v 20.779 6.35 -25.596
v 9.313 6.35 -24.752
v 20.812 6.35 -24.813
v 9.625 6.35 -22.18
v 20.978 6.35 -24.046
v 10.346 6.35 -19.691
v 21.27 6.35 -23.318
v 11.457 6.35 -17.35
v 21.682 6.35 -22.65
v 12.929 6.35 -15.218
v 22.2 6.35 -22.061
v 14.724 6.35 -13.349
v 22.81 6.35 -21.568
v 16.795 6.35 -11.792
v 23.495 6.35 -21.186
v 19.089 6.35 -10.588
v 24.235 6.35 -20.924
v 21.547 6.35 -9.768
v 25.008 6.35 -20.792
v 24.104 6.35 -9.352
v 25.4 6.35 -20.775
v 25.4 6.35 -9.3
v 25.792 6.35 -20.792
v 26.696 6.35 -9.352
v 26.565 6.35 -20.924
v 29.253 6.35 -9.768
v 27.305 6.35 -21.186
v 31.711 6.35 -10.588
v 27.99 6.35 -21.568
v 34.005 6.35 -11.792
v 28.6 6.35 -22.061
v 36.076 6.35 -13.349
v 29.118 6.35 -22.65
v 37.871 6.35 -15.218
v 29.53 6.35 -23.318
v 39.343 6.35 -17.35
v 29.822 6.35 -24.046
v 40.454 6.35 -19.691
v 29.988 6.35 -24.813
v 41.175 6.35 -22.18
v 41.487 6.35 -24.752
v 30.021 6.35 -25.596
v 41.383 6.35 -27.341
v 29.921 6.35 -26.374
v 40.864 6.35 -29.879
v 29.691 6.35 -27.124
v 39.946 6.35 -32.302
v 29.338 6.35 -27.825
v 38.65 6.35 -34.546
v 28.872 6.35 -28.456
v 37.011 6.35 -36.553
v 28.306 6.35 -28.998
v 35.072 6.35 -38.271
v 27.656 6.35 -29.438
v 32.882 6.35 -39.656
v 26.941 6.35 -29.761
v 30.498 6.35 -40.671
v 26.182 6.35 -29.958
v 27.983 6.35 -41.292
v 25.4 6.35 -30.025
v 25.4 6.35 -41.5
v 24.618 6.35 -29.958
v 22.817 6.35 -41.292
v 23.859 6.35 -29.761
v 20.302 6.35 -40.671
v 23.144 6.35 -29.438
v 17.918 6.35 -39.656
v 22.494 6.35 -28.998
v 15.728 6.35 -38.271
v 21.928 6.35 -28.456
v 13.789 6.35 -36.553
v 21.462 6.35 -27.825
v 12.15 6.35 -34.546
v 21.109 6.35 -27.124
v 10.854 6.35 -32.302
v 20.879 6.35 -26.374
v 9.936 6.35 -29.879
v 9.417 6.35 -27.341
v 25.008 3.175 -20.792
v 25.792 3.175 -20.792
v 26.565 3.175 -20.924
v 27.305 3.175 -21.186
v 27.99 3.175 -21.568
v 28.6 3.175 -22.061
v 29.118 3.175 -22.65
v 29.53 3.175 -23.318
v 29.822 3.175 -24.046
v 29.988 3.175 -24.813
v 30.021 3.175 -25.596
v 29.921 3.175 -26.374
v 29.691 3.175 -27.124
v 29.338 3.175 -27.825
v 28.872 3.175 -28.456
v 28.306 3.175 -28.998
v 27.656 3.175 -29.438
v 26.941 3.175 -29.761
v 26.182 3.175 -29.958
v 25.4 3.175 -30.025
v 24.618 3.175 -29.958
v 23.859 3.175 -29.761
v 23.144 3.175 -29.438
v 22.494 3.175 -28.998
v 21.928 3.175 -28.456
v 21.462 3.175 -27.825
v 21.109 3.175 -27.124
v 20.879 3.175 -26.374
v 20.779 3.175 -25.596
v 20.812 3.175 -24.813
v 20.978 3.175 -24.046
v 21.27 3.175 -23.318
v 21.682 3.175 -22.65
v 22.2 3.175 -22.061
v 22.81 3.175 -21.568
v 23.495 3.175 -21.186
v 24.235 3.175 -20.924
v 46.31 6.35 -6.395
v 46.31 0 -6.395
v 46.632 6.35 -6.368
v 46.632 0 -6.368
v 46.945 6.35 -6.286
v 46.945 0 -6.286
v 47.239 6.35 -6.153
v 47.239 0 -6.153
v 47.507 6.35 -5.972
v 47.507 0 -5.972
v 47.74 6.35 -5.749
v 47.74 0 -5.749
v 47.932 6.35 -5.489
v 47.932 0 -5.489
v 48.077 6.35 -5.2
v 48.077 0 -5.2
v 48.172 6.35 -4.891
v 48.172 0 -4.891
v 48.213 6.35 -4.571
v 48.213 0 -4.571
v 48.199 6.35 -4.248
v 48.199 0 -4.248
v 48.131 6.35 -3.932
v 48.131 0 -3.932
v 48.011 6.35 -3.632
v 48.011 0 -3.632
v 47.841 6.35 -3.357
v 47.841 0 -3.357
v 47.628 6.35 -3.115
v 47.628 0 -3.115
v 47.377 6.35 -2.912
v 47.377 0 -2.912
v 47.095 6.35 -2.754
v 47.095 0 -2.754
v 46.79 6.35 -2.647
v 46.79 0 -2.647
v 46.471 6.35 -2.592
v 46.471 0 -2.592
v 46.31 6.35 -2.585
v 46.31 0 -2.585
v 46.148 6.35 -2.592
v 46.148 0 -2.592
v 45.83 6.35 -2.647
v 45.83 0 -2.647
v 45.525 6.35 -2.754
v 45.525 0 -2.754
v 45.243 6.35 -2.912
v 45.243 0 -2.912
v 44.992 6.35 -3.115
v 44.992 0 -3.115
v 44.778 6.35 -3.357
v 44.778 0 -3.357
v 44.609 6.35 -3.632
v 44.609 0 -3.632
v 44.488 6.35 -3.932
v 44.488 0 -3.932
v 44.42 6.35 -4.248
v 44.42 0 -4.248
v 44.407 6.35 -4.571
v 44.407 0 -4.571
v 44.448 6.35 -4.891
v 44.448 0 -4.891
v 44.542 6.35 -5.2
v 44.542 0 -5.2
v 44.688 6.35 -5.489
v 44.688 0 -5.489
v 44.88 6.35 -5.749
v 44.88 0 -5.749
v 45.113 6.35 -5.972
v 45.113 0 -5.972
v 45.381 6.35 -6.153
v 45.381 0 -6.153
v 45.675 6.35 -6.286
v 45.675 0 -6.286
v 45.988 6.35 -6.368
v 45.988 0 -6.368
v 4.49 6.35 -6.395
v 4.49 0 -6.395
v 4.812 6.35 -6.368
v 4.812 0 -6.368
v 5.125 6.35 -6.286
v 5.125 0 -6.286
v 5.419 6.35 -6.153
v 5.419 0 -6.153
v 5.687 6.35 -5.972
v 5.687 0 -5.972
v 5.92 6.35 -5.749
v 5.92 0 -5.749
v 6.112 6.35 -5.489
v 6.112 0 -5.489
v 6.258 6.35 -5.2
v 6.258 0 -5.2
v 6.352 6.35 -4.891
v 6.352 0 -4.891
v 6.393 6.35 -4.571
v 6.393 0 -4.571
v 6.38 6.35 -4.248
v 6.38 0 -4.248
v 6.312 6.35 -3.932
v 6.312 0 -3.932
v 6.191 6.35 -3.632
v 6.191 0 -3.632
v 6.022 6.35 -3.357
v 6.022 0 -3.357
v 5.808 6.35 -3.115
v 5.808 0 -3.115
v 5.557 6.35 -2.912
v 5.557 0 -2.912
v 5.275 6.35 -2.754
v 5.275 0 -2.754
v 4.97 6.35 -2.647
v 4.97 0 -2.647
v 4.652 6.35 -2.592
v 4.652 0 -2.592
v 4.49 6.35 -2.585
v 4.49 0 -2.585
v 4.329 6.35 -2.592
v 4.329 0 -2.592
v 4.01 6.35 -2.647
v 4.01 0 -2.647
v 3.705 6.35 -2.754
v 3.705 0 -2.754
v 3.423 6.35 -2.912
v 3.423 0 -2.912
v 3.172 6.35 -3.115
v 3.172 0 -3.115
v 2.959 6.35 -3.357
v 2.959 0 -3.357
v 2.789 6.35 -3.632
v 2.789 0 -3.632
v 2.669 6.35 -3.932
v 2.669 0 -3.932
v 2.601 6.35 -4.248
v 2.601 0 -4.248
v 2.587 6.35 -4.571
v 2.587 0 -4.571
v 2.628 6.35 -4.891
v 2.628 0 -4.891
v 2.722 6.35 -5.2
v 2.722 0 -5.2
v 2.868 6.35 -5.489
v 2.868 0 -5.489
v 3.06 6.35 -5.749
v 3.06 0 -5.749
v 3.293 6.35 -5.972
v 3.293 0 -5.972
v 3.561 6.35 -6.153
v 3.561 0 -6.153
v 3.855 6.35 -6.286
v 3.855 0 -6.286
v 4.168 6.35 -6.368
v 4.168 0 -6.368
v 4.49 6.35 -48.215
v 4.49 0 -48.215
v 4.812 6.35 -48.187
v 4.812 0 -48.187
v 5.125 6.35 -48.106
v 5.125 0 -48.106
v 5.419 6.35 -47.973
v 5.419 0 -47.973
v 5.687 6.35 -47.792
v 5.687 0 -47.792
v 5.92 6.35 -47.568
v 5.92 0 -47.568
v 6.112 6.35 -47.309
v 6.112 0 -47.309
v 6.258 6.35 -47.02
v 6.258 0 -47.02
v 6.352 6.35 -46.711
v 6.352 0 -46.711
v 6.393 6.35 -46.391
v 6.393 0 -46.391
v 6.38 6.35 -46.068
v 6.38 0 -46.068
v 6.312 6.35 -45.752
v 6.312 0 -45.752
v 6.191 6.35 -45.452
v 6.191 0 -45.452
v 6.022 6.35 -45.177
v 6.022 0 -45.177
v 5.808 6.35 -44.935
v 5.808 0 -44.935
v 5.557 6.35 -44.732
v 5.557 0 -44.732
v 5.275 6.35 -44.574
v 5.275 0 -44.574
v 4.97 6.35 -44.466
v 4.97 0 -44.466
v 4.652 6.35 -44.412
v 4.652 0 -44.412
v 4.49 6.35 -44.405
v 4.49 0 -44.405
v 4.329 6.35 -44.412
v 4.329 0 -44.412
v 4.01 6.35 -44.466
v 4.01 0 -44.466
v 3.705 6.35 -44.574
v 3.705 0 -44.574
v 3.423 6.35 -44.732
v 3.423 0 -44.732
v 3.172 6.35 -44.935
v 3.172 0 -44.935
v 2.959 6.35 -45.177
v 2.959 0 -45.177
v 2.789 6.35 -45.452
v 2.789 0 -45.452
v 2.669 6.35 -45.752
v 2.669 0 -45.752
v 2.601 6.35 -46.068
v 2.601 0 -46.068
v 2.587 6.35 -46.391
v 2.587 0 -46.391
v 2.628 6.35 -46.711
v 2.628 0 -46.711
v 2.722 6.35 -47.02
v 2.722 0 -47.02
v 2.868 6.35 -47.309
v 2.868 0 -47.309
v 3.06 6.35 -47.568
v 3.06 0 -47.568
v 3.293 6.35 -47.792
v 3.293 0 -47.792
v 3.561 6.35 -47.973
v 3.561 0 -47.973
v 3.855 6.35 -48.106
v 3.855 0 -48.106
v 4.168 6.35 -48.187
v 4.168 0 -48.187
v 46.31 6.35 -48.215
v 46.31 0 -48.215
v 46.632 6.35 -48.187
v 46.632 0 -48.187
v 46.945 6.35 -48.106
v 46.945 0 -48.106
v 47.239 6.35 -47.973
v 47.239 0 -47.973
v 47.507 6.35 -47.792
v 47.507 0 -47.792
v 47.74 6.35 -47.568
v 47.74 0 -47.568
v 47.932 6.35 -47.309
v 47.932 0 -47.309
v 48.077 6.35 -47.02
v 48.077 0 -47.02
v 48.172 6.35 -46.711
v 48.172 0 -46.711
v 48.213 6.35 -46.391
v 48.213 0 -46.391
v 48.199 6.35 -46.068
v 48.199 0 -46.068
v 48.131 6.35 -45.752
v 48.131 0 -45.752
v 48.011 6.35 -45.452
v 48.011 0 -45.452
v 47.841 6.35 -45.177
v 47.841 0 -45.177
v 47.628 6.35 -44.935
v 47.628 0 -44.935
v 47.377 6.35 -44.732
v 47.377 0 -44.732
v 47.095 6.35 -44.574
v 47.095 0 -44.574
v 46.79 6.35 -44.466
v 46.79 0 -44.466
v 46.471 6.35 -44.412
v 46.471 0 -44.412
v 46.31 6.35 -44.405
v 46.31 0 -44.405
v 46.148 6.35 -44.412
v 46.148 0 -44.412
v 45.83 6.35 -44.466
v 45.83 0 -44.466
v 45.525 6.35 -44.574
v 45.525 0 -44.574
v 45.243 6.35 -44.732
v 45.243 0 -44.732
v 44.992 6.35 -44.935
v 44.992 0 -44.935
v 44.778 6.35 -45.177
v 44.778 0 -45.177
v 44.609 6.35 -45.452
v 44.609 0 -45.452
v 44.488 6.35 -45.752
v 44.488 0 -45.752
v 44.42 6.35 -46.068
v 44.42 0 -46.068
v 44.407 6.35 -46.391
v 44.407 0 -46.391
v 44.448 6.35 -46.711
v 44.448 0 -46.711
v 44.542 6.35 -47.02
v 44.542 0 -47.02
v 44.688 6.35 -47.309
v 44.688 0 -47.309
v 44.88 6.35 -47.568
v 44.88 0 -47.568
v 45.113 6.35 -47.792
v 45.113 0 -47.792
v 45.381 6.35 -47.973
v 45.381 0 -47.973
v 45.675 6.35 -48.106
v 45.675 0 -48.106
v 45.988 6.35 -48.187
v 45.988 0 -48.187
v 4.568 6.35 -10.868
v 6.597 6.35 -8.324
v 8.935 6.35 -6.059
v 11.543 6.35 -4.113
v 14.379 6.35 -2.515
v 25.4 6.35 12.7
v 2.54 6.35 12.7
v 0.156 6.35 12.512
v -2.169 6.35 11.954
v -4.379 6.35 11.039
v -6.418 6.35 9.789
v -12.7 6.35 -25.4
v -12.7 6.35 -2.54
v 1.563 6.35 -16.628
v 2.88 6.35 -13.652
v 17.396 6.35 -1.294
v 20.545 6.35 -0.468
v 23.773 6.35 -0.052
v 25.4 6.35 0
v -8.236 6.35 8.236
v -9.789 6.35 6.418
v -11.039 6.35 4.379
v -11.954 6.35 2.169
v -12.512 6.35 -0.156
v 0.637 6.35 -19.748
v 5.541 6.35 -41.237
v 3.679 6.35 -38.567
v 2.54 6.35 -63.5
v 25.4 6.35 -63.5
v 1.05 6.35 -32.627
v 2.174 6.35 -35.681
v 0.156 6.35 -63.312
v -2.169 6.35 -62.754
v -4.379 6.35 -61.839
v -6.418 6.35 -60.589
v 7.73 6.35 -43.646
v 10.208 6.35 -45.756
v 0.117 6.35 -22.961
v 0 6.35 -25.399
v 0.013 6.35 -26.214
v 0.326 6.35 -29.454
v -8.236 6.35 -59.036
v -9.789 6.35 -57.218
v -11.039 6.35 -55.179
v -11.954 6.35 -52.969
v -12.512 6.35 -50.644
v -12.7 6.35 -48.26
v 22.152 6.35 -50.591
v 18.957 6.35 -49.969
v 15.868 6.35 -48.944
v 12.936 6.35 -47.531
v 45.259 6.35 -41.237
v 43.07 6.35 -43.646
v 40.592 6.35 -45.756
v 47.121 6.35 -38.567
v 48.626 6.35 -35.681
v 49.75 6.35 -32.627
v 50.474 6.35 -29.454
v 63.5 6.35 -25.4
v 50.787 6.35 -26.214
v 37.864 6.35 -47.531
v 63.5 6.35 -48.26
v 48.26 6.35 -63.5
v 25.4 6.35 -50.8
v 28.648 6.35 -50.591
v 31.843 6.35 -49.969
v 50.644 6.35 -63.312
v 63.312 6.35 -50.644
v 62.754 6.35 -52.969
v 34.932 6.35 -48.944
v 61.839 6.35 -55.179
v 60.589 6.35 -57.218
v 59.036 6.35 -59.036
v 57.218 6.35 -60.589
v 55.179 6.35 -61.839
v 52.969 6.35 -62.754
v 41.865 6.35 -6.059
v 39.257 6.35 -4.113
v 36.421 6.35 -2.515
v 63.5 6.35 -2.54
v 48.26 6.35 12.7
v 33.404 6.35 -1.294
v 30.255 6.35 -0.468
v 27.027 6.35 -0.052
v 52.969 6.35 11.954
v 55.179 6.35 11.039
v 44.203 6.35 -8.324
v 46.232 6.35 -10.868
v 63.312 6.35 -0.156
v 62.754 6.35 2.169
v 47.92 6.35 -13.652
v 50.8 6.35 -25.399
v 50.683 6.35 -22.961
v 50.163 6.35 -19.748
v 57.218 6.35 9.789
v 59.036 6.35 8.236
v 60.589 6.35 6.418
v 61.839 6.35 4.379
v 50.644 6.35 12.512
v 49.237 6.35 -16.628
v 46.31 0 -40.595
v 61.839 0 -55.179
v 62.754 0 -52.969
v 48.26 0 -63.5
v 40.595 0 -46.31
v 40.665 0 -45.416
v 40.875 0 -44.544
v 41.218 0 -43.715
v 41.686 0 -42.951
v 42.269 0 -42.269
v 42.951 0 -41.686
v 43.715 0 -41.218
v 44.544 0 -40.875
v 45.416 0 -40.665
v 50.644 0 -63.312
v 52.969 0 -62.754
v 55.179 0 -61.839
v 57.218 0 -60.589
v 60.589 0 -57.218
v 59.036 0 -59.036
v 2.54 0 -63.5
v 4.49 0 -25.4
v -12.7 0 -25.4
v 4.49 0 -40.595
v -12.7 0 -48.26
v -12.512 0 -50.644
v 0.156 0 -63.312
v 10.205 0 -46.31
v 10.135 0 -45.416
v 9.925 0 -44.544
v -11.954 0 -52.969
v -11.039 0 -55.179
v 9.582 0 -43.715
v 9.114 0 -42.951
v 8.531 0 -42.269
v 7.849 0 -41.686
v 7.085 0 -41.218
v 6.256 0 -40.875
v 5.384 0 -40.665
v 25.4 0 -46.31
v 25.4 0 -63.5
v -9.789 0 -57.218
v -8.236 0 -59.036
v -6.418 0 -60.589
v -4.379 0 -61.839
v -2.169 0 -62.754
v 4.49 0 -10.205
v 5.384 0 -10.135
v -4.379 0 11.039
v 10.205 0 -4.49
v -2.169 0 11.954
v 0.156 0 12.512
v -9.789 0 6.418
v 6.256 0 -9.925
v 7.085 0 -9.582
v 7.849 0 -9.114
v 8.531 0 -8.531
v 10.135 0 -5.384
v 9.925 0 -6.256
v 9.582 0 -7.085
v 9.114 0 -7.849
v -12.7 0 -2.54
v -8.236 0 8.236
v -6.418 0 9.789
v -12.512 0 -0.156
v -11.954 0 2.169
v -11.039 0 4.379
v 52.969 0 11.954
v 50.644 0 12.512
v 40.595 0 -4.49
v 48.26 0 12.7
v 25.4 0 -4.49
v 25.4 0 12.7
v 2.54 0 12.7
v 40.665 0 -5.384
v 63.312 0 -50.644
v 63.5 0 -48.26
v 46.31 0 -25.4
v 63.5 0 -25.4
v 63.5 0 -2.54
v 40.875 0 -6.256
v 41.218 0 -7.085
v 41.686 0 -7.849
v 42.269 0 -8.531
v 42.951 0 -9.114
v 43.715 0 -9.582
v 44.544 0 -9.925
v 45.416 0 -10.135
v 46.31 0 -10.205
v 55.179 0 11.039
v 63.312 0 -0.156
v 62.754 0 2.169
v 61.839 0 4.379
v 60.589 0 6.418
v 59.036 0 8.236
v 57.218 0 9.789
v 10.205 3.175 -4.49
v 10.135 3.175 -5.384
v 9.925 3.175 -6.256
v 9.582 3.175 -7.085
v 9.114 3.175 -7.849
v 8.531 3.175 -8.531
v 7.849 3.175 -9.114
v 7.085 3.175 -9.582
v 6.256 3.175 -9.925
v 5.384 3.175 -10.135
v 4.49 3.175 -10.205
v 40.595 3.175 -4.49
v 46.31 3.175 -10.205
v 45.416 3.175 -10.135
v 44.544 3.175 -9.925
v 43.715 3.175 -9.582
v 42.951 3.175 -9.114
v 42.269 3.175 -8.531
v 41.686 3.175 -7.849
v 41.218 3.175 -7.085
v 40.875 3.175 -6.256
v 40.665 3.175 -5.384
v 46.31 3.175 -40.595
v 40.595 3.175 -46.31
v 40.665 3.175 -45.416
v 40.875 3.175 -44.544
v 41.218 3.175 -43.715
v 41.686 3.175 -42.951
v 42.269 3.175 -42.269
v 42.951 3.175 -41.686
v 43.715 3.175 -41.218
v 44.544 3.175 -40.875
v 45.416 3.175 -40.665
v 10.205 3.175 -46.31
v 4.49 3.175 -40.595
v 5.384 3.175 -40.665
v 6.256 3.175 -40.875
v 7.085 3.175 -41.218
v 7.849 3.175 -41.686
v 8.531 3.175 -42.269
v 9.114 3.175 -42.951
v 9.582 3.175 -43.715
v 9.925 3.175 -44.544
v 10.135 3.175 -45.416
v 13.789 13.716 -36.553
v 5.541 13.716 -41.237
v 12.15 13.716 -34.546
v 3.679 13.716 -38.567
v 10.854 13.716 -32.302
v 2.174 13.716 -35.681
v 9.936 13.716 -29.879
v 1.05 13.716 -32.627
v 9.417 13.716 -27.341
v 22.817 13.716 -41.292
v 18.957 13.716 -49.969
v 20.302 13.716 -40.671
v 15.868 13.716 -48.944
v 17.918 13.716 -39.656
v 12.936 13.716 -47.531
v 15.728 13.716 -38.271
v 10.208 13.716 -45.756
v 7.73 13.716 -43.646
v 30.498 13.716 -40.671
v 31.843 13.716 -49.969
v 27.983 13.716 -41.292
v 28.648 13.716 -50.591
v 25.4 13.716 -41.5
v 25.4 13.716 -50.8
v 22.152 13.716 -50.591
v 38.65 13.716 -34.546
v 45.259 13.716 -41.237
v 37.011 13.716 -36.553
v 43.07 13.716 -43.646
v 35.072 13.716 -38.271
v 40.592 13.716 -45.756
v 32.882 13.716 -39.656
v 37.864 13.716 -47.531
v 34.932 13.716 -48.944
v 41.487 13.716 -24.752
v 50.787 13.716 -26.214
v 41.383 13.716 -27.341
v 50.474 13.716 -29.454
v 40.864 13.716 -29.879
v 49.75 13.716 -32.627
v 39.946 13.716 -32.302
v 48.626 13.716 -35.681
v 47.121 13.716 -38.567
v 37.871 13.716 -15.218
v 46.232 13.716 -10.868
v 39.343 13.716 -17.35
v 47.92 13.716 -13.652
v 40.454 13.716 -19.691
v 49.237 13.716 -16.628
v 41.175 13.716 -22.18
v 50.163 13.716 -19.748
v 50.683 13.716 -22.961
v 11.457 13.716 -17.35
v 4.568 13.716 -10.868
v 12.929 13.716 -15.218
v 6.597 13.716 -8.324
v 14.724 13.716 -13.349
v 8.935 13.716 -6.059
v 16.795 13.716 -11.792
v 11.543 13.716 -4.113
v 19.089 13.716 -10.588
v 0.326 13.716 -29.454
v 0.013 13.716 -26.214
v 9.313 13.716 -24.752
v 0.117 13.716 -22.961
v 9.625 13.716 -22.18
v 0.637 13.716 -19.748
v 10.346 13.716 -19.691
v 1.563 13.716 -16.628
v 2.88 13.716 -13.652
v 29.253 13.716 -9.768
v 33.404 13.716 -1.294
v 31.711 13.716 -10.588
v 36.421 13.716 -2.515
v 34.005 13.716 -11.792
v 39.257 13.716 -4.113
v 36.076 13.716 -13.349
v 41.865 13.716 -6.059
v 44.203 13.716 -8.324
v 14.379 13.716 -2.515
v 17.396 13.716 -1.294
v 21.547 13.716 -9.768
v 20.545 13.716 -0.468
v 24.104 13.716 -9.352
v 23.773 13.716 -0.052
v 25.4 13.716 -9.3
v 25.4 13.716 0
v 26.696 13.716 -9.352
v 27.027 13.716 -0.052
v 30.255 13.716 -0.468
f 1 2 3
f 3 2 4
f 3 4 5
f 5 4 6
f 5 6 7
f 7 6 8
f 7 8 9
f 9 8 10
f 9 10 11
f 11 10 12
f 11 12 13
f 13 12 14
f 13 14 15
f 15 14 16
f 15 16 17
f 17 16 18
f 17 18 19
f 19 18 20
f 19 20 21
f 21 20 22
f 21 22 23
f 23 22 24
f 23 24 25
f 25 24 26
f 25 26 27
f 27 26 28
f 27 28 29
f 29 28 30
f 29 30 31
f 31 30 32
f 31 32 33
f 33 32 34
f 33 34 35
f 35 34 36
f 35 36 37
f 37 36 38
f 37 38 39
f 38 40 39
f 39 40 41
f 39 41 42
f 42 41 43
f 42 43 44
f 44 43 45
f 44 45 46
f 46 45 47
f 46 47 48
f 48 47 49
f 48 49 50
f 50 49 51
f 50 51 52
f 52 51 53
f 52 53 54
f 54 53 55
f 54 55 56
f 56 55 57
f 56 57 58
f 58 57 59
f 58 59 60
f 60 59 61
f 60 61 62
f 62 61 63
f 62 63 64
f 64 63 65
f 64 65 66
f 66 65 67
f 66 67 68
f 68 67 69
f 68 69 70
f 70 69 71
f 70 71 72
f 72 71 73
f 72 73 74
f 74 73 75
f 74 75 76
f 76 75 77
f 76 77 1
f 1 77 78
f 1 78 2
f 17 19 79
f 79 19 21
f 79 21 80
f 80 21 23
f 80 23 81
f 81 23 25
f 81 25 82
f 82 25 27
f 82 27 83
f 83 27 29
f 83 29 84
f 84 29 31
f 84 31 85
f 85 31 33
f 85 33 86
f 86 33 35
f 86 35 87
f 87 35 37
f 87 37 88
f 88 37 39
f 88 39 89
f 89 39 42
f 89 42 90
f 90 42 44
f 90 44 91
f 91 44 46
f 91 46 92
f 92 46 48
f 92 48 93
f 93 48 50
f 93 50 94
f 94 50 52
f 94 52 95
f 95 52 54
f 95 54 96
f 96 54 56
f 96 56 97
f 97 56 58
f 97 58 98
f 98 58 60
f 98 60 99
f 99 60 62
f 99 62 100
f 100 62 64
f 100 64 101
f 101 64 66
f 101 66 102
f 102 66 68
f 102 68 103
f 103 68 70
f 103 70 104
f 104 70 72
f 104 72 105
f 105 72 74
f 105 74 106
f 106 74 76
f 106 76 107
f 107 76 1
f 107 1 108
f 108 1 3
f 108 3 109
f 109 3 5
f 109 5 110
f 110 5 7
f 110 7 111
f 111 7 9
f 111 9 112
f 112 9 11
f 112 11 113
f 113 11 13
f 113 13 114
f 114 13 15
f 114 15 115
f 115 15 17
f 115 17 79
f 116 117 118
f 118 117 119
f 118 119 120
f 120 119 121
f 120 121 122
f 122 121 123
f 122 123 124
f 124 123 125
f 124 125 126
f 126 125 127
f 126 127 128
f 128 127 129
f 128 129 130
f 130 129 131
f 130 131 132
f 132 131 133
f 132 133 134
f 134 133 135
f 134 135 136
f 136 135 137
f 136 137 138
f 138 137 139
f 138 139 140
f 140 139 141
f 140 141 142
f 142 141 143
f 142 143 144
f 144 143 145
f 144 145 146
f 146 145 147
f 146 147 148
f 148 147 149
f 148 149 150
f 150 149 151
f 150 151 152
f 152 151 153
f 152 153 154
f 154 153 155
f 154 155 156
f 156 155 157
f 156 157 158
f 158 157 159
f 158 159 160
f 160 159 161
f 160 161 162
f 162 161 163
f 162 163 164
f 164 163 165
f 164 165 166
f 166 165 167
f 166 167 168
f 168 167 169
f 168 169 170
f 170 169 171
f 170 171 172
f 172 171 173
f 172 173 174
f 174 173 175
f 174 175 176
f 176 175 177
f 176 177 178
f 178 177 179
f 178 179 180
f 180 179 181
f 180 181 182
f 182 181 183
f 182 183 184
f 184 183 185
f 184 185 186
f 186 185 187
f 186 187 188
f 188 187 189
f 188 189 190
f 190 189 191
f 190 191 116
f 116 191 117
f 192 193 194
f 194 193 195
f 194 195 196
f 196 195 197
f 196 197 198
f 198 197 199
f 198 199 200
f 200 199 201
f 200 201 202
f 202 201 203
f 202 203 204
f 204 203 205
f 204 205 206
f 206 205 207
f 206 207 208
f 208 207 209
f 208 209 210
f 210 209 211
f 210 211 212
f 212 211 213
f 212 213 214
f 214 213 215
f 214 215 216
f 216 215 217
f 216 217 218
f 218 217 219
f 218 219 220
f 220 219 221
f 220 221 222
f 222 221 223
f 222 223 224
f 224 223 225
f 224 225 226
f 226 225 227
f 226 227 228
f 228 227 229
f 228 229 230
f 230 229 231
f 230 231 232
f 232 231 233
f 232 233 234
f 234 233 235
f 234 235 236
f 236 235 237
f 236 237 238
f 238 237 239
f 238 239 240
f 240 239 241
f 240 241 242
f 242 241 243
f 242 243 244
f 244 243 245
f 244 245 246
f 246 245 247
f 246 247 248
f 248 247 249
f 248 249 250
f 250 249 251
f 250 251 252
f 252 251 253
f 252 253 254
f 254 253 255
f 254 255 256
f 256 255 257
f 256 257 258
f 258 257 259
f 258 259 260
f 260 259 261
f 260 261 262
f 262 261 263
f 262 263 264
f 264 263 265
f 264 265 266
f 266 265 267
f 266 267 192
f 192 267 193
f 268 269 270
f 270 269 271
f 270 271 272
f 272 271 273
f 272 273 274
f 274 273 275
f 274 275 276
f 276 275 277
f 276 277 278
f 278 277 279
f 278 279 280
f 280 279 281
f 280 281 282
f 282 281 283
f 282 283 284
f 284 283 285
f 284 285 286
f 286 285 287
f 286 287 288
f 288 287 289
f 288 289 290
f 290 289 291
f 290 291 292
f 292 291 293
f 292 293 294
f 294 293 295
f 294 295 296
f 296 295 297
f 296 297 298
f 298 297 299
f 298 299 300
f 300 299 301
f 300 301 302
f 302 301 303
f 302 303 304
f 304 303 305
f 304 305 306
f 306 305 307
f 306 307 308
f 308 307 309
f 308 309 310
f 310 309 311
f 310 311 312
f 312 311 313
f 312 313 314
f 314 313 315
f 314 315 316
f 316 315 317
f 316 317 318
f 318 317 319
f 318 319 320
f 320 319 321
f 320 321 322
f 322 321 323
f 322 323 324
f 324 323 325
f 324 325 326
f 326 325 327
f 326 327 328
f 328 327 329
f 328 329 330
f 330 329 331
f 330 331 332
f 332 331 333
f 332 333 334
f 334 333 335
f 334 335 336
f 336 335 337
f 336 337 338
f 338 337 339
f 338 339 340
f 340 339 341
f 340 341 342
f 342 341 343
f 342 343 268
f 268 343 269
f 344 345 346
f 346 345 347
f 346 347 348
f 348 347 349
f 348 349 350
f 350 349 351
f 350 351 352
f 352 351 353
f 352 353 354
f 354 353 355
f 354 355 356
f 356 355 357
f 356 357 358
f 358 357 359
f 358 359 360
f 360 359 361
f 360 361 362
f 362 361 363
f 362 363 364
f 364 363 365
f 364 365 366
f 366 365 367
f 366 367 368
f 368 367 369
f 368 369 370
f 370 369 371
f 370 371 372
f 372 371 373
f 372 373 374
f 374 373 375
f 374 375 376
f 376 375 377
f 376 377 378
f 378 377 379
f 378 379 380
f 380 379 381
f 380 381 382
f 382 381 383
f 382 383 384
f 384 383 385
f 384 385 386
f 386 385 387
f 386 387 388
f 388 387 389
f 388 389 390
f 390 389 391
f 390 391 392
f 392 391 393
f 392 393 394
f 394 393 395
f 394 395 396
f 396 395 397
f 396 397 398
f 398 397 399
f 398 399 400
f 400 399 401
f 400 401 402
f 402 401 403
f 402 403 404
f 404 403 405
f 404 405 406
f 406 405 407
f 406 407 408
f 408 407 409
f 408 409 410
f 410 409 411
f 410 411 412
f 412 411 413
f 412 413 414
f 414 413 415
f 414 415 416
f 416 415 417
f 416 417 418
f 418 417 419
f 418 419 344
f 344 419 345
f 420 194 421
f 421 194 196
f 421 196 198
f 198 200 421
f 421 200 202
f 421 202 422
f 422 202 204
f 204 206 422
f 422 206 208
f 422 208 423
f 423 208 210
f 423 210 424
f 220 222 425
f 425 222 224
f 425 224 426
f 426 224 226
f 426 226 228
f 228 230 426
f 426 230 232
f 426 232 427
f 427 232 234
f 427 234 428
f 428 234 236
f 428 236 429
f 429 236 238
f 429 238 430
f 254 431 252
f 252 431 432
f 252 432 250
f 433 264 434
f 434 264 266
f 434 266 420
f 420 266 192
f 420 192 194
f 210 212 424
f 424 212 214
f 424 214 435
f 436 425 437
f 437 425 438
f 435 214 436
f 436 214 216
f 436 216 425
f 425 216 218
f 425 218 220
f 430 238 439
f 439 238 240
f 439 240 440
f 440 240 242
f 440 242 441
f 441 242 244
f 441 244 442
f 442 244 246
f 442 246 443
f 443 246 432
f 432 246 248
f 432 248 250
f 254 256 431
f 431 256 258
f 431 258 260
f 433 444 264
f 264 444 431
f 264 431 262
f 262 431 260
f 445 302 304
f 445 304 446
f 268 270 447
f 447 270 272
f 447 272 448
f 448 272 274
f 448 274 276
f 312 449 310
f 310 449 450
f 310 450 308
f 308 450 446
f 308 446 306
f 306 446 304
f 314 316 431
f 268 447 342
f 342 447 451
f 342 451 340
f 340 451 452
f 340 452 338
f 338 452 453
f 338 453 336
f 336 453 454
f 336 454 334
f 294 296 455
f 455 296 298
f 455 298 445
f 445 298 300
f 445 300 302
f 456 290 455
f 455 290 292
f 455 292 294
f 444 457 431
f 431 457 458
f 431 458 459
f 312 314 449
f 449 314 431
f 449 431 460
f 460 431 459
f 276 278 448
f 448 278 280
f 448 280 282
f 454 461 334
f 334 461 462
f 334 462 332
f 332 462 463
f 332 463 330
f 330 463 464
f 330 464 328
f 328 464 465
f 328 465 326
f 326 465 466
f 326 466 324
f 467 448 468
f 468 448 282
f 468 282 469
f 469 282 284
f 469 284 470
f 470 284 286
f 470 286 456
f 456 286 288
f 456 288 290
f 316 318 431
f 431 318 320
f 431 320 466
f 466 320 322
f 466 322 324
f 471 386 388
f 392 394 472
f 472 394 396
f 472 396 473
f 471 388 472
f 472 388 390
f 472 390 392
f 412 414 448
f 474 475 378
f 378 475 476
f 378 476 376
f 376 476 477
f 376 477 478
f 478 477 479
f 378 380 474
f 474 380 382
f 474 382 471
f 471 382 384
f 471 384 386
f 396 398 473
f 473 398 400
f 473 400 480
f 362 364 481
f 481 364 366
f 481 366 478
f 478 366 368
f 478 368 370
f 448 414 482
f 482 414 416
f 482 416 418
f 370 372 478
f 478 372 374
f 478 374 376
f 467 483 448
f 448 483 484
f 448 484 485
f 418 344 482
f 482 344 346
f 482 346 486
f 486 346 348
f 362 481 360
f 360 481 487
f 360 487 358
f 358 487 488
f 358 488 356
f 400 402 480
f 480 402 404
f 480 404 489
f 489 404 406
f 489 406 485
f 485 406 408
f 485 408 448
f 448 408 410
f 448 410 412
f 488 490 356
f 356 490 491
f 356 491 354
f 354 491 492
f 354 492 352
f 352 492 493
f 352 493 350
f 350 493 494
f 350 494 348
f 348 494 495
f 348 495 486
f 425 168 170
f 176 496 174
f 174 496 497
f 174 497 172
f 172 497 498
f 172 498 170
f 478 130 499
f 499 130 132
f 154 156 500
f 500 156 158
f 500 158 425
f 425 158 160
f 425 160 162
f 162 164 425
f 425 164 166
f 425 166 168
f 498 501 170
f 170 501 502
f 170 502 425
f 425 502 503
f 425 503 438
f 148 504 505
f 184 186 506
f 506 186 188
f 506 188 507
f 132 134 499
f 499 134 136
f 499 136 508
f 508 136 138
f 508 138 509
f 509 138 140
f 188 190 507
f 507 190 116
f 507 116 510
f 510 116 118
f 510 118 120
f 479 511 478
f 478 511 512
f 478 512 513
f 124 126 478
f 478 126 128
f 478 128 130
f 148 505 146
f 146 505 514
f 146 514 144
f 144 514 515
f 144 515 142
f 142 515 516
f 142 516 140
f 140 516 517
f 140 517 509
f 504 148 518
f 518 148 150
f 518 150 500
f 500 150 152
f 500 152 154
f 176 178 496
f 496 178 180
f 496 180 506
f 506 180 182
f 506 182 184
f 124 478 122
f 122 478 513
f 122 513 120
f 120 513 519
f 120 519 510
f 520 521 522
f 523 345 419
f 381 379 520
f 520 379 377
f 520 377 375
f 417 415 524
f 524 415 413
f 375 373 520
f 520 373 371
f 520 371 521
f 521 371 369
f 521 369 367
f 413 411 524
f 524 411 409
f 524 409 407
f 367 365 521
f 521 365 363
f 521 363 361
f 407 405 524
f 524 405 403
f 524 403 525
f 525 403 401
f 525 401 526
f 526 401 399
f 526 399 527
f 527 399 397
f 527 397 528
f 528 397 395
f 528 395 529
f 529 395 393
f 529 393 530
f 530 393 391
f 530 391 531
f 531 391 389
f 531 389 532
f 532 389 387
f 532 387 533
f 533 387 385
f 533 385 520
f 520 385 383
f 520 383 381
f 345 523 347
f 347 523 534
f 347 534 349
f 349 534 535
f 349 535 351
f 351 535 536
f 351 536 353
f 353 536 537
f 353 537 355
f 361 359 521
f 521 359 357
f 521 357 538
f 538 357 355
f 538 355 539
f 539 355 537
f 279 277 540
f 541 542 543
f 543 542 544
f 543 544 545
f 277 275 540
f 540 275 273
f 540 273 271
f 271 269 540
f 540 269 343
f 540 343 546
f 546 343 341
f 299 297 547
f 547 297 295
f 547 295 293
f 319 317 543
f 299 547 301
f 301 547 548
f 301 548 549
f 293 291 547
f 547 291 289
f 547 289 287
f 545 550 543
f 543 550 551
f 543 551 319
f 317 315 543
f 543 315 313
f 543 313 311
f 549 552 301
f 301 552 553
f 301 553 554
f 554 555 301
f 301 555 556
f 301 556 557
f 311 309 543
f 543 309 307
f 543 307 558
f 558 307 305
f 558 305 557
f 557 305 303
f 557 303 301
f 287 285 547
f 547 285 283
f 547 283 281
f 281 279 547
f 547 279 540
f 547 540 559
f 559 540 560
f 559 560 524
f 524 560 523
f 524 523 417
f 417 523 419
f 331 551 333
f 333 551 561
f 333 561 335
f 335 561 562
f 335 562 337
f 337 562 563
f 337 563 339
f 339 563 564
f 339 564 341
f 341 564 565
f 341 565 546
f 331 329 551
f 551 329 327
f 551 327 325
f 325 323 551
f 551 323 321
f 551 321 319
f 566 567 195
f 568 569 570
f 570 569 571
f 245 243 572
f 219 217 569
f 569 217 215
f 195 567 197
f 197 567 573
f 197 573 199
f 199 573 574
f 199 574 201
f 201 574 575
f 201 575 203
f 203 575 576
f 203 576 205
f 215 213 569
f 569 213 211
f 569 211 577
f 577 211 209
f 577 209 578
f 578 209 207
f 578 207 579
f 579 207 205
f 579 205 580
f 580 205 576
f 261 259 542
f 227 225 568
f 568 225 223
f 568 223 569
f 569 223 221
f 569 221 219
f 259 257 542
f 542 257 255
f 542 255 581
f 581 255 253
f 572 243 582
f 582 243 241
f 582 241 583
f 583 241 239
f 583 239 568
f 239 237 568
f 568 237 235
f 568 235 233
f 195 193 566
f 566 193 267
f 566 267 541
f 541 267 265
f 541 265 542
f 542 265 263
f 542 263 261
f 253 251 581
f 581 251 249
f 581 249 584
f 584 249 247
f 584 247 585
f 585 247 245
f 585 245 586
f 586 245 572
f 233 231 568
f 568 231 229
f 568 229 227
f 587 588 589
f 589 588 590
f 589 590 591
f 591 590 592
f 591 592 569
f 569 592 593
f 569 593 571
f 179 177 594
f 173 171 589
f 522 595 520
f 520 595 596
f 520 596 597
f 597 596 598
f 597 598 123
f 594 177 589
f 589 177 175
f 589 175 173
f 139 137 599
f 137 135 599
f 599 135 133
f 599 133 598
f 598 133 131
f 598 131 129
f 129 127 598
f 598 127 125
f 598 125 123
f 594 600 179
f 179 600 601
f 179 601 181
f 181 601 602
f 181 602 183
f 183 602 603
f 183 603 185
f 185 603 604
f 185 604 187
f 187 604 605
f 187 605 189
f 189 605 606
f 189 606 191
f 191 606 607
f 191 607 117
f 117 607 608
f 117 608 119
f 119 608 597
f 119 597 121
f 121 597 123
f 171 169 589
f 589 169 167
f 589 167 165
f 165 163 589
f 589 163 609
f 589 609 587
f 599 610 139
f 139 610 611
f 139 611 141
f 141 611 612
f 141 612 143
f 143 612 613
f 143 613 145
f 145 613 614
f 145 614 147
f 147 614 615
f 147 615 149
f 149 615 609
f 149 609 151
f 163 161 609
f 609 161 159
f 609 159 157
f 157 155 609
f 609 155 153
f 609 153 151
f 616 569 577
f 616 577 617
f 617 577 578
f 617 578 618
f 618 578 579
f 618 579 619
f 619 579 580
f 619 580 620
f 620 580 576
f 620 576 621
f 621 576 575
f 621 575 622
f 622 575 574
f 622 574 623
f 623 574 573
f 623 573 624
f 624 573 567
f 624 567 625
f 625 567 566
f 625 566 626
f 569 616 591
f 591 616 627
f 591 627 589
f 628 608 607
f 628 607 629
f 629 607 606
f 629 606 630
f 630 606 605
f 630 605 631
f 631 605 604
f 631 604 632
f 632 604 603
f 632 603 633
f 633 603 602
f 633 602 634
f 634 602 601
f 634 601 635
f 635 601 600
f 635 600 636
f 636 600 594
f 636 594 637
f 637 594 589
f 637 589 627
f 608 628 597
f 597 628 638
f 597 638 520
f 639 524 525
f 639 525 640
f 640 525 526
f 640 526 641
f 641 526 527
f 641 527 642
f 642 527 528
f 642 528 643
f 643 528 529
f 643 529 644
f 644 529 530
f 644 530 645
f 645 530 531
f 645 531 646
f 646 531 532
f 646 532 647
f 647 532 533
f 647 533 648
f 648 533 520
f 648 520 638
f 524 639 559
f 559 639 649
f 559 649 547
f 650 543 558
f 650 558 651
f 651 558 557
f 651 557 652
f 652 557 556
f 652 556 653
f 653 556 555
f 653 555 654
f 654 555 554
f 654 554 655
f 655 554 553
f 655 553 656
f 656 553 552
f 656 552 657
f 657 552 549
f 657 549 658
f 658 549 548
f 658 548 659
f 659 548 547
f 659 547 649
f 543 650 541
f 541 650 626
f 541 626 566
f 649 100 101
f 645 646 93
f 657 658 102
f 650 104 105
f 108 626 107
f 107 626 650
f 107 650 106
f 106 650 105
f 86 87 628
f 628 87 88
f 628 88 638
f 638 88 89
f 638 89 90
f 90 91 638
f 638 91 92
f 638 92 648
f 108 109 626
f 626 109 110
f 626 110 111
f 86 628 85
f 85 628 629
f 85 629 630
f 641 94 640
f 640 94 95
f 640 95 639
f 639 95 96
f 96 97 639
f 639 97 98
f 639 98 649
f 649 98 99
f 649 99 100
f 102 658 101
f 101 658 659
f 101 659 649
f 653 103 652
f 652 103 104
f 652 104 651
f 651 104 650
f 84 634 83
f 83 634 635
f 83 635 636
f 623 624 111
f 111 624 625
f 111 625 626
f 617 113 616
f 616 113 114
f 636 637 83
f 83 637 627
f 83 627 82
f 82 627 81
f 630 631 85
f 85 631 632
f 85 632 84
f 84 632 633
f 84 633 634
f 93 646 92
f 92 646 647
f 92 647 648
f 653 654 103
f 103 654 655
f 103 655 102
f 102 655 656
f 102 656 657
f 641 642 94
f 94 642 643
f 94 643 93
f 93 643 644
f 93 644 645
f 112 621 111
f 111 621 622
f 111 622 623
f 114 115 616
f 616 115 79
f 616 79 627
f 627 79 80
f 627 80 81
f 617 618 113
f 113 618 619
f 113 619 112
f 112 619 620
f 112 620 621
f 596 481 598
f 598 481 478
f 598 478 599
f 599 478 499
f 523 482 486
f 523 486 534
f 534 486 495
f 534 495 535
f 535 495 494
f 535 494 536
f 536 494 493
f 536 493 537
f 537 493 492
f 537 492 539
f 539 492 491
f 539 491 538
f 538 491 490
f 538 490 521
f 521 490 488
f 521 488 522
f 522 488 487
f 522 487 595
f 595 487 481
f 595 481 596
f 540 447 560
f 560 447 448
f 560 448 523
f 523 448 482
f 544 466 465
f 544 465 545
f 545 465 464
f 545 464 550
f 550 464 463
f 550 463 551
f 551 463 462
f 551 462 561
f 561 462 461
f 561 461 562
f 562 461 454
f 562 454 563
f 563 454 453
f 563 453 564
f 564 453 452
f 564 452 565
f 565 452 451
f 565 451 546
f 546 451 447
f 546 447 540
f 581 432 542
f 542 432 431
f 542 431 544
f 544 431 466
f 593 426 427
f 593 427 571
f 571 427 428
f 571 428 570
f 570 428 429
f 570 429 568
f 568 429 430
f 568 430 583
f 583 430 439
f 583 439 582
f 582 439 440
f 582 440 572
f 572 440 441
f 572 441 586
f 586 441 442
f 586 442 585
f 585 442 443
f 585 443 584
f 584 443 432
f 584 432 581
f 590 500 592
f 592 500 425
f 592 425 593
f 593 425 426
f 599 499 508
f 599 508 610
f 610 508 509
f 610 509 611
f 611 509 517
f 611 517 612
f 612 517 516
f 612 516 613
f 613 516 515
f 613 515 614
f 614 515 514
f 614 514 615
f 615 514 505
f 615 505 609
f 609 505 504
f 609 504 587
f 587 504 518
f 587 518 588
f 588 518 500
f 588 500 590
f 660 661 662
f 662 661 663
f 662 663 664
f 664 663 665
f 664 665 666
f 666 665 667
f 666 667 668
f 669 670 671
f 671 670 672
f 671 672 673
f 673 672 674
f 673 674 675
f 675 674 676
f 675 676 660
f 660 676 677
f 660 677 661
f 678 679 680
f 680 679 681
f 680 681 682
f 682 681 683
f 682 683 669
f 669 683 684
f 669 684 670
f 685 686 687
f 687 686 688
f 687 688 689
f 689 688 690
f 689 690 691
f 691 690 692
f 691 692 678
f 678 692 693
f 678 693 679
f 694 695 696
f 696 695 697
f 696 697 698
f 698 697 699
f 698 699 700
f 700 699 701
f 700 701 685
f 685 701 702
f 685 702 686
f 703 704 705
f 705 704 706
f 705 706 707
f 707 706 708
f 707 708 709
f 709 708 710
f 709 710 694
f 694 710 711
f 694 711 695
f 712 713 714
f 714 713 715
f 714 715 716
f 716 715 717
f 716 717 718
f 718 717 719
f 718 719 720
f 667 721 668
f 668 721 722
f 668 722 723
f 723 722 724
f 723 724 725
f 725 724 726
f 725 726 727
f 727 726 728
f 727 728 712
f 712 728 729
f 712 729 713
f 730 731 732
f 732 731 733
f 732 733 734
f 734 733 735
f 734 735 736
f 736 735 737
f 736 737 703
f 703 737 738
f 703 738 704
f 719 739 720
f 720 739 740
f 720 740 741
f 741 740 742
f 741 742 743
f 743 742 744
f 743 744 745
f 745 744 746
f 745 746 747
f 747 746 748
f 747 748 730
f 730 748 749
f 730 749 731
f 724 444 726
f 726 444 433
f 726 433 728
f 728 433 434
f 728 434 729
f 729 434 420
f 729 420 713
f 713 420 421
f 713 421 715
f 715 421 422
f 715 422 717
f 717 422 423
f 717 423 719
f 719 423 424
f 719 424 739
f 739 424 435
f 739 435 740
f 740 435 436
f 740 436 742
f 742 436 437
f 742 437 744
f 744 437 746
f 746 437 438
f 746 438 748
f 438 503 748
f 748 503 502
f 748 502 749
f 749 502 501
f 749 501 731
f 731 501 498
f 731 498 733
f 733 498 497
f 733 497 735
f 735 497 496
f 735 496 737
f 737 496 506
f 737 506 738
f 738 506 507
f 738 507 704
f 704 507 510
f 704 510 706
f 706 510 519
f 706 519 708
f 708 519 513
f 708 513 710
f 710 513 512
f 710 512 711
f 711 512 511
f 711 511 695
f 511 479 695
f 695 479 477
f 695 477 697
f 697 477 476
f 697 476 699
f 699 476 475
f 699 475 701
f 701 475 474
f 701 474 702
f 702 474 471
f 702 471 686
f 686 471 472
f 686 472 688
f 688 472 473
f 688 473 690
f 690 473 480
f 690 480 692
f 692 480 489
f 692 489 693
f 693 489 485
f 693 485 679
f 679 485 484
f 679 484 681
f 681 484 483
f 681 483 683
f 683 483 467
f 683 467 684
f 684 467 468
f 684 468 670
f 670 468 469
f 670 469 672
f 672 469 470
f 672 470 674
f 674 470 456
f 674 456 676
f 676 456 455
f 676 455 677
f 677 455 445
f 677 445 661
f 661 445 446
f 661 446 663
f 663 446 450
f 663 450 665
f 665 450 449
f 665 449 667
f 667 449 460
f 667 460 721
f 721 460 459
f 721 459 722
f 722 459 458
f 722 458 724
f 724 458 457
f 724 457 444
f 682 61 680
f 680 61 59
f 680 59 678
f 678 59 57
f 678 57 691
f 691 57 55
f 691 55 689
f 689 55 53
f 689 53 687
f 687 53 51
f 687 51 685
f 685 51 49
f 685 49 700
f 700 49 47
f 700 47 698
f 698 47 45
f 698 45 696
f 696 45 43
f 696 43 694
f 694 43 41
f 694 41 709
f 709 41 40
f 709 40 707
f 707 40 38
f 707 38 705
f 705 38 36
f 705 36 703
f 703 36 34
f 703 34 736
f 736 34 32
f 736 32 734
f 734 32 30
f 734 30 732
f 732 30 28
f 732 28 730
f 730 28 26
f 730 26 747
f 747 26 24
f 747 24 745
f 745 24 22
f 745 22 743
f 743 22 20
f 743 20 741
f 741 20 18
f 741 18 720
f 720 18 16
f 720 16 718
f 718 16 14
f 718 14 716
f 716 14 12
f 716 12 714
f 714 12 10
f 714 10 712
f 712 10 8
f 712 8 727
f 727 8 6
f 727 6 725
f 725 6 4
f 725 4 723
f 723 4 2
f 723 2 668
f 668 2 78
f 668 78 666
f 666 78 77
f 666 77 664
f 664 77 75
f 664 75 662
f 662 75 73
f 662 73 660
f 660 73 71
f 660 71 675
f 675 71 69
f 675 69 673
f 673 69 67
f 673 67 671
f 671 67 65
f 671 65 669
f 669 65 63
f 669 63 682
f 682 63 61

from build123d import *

# Parameters (mm, degrees)
SKETCH1_W           = 50.8
SKETCH1_H           = 50.8
SKETCH1_R           = 1.905
SKETCH1_R_2         = 4.625
BOSS_EXTRUDE1_DEPTH = 6.35
FILLET1_R           = 2.54
SKETCH4_R           = 1.905
CUT_EXTRUDE3_DEPTH  = 3.175
BOSS_EXTRUDE2_DEPTH = 6.35
SKETCH6_R           = 25.4
SKETCH6_R_2         = 16.1
BOSS_EXTRUDE3_DEPTH = 7.366


with BuildPart() as part:
    # Sketch1 → Boss-Extrude1 (new body)
    with BuildSketch(Plane(origin=(0, 0, 0), x_dir=(1, 0, 0), z_dir=(0, 1, 0))):
        with Locations((25.4, 25.4)):
            Rectangle(SKETCH1_W, SKETCH1_H)
        with Locations(Location((4.490128061, 46.309871939, 0), (0, 0, 270))):
            Circle(SKETCH1_R, mode=Mode.SUBTRACT)
        with Locations(Location((4.490128061, 4.490128061, 0), (0, 0, 270))):
            Circle(SKETCH1_R, mode=Mode.SUBTRACT)
        with Locations(Location((46.309871939, 4.490128061, 0), (0, 0, 270))):
            Circle(SKETCH1_R, mode=Mode.SUBTRACT)
        with Locations(Location((46.309871939, 46.309871939, 0), (0, 0, 270))):
            Circle(SKETCH1_R, mode=Mode.SUBTRACT)
        with Locations(Location((25.4, 25.4, 0), (0, 0, 270))):
            Circle(SKETCH1_R_2, mode=Mode.SUBTRACT)
    extrude(amount=BOSS_EXTRUDE1_DEPTH)

    # Fillet1
    fillet1_edges = [part.edges().sort_by_distance(p)[0] for p in [
        (50.8, 3.175, -50.8),
        (50.8, 3.175, 0),
        (0, 3.175, 0),
        (0, 3.175, -50.8),
    ]]
    fillet(fillet1_edges, radius=FILLET1_R)

    # Sketch4 → Cut-Extrude3 (cut)
    with BuildSketch(Plane.XZ):
        with Locations(Location((4.490128061, -4.490128061, 0), (0, 0, 90))):
            Circle(SKETCH4_R)
        with BuildLine():
            Line((10.205128061, -4.490128061), (40.594871939, -4.490128061))
            ThreePointArc((40.594871939, -4.490128061), (42.268756685, -8.531243315), (46.309871939, -10.205128061))
            Line((46.309871939, -10.205128061), (46.309871939, -40.594871939))
            ThreePointArc((46.309871939, -40.594871939), (42.268756685, -42.268756685), (40.594871939, -46.309871939))
            Line((40.594871939, -46.309871939), (10.205128061, -46.309871939))
            ThreePointArc((10.205128061, -46.309871939), (8.531243315, -42.268756685), (4.490128061, -40.594871939))
            Line((4.490128061, -40.594871939), (4.490128061, -10.205128061))
            ThreePointArc((4.490128061, -10.205128061), (8.531243315, -8.531243315), (10.205128061, -4.490128061))
        make_face()
    extrude(amount=-CUT_EXTRUDE3_DEPTH, mode=Mode.SUBTRACT)

    # Sketch5 → Boss-Extrude2 (add)
    with BuildSketch(Plane(origin=(0, 6.35, 0), x_dir=(1, 0, 0), z_dir=(0, 1, 0))):
        with BuildLine():
            Line((63.5, 2.54), (63.5, 48.26))
            ThreePointArc((63.5, 48.26), (59.036307345, 59.036307345), (48.26, 63.5))
            Line((48.26, 63.5), (2.54, 63.5))
            ThreePointArc((2.54, 63.5), (-8.236307345, 59.036307345), (-12.7, 48.26))
            Line((-12.7, 48.26), (-12.7, 2.54))
            ThreePointArc((-12.7, 2.54), (-8.236307345, -8.236307345), (2.54, -12.7))
            Line((2.54, -12.7), (48.26, -12.7))
            ThreePointArc((48.26, -12.7), (59.036307345, -8.236307345), (63.5, 2.54))
        make_face()
        with BuildLine():
            Line((50.8, 2.54), (50.8, 48.26))
            ThreePointArc((50.8, 48.26), (50.056051224, 50.056051224), (48.26, 50.8))
            Line((48.26, 50.8), (2.54, 50.8))
            ThreePointArc((2.54, 50.8), (0.743948776, 50.056051224), (0, 48.26))
            Line((0, 48.26), (0, 2.54))
            ThreePointArc((0, 2.54), (0.743948776, 0.743948776), (2.54, 0))
            Line((2.54, 0), (48.26, 0))
            ThreePointArc((48.26, 0), (50.056051224, 0.743948776), (50.8, 2.54))
        make_face(mode=Mode.SUBTRACT)
    extrude(amount=-BOSS_EXTRUDE2_DEPTH)

    # Sketch6 → Boss-Extrude3 (add)
    with BuildSketch(Plane(origin=(0, 6.35, 0), x_dir=(1, 0, 0), z_dir=(0, 1, 0))):
        with Locations(Location((25.4, 25.4, 0), (0, 0, 270))):
            Circle(SKETCH6_R)
        with Locations(Location((25.4, 25.4, 0), (0, 0, 270))):
            Circle(SKETCH6_R_2, mode=Mode.SUBTRACT)
    extrude(amount=BOSS_EXTRUDE3_DEPTH)


solid = part.part
